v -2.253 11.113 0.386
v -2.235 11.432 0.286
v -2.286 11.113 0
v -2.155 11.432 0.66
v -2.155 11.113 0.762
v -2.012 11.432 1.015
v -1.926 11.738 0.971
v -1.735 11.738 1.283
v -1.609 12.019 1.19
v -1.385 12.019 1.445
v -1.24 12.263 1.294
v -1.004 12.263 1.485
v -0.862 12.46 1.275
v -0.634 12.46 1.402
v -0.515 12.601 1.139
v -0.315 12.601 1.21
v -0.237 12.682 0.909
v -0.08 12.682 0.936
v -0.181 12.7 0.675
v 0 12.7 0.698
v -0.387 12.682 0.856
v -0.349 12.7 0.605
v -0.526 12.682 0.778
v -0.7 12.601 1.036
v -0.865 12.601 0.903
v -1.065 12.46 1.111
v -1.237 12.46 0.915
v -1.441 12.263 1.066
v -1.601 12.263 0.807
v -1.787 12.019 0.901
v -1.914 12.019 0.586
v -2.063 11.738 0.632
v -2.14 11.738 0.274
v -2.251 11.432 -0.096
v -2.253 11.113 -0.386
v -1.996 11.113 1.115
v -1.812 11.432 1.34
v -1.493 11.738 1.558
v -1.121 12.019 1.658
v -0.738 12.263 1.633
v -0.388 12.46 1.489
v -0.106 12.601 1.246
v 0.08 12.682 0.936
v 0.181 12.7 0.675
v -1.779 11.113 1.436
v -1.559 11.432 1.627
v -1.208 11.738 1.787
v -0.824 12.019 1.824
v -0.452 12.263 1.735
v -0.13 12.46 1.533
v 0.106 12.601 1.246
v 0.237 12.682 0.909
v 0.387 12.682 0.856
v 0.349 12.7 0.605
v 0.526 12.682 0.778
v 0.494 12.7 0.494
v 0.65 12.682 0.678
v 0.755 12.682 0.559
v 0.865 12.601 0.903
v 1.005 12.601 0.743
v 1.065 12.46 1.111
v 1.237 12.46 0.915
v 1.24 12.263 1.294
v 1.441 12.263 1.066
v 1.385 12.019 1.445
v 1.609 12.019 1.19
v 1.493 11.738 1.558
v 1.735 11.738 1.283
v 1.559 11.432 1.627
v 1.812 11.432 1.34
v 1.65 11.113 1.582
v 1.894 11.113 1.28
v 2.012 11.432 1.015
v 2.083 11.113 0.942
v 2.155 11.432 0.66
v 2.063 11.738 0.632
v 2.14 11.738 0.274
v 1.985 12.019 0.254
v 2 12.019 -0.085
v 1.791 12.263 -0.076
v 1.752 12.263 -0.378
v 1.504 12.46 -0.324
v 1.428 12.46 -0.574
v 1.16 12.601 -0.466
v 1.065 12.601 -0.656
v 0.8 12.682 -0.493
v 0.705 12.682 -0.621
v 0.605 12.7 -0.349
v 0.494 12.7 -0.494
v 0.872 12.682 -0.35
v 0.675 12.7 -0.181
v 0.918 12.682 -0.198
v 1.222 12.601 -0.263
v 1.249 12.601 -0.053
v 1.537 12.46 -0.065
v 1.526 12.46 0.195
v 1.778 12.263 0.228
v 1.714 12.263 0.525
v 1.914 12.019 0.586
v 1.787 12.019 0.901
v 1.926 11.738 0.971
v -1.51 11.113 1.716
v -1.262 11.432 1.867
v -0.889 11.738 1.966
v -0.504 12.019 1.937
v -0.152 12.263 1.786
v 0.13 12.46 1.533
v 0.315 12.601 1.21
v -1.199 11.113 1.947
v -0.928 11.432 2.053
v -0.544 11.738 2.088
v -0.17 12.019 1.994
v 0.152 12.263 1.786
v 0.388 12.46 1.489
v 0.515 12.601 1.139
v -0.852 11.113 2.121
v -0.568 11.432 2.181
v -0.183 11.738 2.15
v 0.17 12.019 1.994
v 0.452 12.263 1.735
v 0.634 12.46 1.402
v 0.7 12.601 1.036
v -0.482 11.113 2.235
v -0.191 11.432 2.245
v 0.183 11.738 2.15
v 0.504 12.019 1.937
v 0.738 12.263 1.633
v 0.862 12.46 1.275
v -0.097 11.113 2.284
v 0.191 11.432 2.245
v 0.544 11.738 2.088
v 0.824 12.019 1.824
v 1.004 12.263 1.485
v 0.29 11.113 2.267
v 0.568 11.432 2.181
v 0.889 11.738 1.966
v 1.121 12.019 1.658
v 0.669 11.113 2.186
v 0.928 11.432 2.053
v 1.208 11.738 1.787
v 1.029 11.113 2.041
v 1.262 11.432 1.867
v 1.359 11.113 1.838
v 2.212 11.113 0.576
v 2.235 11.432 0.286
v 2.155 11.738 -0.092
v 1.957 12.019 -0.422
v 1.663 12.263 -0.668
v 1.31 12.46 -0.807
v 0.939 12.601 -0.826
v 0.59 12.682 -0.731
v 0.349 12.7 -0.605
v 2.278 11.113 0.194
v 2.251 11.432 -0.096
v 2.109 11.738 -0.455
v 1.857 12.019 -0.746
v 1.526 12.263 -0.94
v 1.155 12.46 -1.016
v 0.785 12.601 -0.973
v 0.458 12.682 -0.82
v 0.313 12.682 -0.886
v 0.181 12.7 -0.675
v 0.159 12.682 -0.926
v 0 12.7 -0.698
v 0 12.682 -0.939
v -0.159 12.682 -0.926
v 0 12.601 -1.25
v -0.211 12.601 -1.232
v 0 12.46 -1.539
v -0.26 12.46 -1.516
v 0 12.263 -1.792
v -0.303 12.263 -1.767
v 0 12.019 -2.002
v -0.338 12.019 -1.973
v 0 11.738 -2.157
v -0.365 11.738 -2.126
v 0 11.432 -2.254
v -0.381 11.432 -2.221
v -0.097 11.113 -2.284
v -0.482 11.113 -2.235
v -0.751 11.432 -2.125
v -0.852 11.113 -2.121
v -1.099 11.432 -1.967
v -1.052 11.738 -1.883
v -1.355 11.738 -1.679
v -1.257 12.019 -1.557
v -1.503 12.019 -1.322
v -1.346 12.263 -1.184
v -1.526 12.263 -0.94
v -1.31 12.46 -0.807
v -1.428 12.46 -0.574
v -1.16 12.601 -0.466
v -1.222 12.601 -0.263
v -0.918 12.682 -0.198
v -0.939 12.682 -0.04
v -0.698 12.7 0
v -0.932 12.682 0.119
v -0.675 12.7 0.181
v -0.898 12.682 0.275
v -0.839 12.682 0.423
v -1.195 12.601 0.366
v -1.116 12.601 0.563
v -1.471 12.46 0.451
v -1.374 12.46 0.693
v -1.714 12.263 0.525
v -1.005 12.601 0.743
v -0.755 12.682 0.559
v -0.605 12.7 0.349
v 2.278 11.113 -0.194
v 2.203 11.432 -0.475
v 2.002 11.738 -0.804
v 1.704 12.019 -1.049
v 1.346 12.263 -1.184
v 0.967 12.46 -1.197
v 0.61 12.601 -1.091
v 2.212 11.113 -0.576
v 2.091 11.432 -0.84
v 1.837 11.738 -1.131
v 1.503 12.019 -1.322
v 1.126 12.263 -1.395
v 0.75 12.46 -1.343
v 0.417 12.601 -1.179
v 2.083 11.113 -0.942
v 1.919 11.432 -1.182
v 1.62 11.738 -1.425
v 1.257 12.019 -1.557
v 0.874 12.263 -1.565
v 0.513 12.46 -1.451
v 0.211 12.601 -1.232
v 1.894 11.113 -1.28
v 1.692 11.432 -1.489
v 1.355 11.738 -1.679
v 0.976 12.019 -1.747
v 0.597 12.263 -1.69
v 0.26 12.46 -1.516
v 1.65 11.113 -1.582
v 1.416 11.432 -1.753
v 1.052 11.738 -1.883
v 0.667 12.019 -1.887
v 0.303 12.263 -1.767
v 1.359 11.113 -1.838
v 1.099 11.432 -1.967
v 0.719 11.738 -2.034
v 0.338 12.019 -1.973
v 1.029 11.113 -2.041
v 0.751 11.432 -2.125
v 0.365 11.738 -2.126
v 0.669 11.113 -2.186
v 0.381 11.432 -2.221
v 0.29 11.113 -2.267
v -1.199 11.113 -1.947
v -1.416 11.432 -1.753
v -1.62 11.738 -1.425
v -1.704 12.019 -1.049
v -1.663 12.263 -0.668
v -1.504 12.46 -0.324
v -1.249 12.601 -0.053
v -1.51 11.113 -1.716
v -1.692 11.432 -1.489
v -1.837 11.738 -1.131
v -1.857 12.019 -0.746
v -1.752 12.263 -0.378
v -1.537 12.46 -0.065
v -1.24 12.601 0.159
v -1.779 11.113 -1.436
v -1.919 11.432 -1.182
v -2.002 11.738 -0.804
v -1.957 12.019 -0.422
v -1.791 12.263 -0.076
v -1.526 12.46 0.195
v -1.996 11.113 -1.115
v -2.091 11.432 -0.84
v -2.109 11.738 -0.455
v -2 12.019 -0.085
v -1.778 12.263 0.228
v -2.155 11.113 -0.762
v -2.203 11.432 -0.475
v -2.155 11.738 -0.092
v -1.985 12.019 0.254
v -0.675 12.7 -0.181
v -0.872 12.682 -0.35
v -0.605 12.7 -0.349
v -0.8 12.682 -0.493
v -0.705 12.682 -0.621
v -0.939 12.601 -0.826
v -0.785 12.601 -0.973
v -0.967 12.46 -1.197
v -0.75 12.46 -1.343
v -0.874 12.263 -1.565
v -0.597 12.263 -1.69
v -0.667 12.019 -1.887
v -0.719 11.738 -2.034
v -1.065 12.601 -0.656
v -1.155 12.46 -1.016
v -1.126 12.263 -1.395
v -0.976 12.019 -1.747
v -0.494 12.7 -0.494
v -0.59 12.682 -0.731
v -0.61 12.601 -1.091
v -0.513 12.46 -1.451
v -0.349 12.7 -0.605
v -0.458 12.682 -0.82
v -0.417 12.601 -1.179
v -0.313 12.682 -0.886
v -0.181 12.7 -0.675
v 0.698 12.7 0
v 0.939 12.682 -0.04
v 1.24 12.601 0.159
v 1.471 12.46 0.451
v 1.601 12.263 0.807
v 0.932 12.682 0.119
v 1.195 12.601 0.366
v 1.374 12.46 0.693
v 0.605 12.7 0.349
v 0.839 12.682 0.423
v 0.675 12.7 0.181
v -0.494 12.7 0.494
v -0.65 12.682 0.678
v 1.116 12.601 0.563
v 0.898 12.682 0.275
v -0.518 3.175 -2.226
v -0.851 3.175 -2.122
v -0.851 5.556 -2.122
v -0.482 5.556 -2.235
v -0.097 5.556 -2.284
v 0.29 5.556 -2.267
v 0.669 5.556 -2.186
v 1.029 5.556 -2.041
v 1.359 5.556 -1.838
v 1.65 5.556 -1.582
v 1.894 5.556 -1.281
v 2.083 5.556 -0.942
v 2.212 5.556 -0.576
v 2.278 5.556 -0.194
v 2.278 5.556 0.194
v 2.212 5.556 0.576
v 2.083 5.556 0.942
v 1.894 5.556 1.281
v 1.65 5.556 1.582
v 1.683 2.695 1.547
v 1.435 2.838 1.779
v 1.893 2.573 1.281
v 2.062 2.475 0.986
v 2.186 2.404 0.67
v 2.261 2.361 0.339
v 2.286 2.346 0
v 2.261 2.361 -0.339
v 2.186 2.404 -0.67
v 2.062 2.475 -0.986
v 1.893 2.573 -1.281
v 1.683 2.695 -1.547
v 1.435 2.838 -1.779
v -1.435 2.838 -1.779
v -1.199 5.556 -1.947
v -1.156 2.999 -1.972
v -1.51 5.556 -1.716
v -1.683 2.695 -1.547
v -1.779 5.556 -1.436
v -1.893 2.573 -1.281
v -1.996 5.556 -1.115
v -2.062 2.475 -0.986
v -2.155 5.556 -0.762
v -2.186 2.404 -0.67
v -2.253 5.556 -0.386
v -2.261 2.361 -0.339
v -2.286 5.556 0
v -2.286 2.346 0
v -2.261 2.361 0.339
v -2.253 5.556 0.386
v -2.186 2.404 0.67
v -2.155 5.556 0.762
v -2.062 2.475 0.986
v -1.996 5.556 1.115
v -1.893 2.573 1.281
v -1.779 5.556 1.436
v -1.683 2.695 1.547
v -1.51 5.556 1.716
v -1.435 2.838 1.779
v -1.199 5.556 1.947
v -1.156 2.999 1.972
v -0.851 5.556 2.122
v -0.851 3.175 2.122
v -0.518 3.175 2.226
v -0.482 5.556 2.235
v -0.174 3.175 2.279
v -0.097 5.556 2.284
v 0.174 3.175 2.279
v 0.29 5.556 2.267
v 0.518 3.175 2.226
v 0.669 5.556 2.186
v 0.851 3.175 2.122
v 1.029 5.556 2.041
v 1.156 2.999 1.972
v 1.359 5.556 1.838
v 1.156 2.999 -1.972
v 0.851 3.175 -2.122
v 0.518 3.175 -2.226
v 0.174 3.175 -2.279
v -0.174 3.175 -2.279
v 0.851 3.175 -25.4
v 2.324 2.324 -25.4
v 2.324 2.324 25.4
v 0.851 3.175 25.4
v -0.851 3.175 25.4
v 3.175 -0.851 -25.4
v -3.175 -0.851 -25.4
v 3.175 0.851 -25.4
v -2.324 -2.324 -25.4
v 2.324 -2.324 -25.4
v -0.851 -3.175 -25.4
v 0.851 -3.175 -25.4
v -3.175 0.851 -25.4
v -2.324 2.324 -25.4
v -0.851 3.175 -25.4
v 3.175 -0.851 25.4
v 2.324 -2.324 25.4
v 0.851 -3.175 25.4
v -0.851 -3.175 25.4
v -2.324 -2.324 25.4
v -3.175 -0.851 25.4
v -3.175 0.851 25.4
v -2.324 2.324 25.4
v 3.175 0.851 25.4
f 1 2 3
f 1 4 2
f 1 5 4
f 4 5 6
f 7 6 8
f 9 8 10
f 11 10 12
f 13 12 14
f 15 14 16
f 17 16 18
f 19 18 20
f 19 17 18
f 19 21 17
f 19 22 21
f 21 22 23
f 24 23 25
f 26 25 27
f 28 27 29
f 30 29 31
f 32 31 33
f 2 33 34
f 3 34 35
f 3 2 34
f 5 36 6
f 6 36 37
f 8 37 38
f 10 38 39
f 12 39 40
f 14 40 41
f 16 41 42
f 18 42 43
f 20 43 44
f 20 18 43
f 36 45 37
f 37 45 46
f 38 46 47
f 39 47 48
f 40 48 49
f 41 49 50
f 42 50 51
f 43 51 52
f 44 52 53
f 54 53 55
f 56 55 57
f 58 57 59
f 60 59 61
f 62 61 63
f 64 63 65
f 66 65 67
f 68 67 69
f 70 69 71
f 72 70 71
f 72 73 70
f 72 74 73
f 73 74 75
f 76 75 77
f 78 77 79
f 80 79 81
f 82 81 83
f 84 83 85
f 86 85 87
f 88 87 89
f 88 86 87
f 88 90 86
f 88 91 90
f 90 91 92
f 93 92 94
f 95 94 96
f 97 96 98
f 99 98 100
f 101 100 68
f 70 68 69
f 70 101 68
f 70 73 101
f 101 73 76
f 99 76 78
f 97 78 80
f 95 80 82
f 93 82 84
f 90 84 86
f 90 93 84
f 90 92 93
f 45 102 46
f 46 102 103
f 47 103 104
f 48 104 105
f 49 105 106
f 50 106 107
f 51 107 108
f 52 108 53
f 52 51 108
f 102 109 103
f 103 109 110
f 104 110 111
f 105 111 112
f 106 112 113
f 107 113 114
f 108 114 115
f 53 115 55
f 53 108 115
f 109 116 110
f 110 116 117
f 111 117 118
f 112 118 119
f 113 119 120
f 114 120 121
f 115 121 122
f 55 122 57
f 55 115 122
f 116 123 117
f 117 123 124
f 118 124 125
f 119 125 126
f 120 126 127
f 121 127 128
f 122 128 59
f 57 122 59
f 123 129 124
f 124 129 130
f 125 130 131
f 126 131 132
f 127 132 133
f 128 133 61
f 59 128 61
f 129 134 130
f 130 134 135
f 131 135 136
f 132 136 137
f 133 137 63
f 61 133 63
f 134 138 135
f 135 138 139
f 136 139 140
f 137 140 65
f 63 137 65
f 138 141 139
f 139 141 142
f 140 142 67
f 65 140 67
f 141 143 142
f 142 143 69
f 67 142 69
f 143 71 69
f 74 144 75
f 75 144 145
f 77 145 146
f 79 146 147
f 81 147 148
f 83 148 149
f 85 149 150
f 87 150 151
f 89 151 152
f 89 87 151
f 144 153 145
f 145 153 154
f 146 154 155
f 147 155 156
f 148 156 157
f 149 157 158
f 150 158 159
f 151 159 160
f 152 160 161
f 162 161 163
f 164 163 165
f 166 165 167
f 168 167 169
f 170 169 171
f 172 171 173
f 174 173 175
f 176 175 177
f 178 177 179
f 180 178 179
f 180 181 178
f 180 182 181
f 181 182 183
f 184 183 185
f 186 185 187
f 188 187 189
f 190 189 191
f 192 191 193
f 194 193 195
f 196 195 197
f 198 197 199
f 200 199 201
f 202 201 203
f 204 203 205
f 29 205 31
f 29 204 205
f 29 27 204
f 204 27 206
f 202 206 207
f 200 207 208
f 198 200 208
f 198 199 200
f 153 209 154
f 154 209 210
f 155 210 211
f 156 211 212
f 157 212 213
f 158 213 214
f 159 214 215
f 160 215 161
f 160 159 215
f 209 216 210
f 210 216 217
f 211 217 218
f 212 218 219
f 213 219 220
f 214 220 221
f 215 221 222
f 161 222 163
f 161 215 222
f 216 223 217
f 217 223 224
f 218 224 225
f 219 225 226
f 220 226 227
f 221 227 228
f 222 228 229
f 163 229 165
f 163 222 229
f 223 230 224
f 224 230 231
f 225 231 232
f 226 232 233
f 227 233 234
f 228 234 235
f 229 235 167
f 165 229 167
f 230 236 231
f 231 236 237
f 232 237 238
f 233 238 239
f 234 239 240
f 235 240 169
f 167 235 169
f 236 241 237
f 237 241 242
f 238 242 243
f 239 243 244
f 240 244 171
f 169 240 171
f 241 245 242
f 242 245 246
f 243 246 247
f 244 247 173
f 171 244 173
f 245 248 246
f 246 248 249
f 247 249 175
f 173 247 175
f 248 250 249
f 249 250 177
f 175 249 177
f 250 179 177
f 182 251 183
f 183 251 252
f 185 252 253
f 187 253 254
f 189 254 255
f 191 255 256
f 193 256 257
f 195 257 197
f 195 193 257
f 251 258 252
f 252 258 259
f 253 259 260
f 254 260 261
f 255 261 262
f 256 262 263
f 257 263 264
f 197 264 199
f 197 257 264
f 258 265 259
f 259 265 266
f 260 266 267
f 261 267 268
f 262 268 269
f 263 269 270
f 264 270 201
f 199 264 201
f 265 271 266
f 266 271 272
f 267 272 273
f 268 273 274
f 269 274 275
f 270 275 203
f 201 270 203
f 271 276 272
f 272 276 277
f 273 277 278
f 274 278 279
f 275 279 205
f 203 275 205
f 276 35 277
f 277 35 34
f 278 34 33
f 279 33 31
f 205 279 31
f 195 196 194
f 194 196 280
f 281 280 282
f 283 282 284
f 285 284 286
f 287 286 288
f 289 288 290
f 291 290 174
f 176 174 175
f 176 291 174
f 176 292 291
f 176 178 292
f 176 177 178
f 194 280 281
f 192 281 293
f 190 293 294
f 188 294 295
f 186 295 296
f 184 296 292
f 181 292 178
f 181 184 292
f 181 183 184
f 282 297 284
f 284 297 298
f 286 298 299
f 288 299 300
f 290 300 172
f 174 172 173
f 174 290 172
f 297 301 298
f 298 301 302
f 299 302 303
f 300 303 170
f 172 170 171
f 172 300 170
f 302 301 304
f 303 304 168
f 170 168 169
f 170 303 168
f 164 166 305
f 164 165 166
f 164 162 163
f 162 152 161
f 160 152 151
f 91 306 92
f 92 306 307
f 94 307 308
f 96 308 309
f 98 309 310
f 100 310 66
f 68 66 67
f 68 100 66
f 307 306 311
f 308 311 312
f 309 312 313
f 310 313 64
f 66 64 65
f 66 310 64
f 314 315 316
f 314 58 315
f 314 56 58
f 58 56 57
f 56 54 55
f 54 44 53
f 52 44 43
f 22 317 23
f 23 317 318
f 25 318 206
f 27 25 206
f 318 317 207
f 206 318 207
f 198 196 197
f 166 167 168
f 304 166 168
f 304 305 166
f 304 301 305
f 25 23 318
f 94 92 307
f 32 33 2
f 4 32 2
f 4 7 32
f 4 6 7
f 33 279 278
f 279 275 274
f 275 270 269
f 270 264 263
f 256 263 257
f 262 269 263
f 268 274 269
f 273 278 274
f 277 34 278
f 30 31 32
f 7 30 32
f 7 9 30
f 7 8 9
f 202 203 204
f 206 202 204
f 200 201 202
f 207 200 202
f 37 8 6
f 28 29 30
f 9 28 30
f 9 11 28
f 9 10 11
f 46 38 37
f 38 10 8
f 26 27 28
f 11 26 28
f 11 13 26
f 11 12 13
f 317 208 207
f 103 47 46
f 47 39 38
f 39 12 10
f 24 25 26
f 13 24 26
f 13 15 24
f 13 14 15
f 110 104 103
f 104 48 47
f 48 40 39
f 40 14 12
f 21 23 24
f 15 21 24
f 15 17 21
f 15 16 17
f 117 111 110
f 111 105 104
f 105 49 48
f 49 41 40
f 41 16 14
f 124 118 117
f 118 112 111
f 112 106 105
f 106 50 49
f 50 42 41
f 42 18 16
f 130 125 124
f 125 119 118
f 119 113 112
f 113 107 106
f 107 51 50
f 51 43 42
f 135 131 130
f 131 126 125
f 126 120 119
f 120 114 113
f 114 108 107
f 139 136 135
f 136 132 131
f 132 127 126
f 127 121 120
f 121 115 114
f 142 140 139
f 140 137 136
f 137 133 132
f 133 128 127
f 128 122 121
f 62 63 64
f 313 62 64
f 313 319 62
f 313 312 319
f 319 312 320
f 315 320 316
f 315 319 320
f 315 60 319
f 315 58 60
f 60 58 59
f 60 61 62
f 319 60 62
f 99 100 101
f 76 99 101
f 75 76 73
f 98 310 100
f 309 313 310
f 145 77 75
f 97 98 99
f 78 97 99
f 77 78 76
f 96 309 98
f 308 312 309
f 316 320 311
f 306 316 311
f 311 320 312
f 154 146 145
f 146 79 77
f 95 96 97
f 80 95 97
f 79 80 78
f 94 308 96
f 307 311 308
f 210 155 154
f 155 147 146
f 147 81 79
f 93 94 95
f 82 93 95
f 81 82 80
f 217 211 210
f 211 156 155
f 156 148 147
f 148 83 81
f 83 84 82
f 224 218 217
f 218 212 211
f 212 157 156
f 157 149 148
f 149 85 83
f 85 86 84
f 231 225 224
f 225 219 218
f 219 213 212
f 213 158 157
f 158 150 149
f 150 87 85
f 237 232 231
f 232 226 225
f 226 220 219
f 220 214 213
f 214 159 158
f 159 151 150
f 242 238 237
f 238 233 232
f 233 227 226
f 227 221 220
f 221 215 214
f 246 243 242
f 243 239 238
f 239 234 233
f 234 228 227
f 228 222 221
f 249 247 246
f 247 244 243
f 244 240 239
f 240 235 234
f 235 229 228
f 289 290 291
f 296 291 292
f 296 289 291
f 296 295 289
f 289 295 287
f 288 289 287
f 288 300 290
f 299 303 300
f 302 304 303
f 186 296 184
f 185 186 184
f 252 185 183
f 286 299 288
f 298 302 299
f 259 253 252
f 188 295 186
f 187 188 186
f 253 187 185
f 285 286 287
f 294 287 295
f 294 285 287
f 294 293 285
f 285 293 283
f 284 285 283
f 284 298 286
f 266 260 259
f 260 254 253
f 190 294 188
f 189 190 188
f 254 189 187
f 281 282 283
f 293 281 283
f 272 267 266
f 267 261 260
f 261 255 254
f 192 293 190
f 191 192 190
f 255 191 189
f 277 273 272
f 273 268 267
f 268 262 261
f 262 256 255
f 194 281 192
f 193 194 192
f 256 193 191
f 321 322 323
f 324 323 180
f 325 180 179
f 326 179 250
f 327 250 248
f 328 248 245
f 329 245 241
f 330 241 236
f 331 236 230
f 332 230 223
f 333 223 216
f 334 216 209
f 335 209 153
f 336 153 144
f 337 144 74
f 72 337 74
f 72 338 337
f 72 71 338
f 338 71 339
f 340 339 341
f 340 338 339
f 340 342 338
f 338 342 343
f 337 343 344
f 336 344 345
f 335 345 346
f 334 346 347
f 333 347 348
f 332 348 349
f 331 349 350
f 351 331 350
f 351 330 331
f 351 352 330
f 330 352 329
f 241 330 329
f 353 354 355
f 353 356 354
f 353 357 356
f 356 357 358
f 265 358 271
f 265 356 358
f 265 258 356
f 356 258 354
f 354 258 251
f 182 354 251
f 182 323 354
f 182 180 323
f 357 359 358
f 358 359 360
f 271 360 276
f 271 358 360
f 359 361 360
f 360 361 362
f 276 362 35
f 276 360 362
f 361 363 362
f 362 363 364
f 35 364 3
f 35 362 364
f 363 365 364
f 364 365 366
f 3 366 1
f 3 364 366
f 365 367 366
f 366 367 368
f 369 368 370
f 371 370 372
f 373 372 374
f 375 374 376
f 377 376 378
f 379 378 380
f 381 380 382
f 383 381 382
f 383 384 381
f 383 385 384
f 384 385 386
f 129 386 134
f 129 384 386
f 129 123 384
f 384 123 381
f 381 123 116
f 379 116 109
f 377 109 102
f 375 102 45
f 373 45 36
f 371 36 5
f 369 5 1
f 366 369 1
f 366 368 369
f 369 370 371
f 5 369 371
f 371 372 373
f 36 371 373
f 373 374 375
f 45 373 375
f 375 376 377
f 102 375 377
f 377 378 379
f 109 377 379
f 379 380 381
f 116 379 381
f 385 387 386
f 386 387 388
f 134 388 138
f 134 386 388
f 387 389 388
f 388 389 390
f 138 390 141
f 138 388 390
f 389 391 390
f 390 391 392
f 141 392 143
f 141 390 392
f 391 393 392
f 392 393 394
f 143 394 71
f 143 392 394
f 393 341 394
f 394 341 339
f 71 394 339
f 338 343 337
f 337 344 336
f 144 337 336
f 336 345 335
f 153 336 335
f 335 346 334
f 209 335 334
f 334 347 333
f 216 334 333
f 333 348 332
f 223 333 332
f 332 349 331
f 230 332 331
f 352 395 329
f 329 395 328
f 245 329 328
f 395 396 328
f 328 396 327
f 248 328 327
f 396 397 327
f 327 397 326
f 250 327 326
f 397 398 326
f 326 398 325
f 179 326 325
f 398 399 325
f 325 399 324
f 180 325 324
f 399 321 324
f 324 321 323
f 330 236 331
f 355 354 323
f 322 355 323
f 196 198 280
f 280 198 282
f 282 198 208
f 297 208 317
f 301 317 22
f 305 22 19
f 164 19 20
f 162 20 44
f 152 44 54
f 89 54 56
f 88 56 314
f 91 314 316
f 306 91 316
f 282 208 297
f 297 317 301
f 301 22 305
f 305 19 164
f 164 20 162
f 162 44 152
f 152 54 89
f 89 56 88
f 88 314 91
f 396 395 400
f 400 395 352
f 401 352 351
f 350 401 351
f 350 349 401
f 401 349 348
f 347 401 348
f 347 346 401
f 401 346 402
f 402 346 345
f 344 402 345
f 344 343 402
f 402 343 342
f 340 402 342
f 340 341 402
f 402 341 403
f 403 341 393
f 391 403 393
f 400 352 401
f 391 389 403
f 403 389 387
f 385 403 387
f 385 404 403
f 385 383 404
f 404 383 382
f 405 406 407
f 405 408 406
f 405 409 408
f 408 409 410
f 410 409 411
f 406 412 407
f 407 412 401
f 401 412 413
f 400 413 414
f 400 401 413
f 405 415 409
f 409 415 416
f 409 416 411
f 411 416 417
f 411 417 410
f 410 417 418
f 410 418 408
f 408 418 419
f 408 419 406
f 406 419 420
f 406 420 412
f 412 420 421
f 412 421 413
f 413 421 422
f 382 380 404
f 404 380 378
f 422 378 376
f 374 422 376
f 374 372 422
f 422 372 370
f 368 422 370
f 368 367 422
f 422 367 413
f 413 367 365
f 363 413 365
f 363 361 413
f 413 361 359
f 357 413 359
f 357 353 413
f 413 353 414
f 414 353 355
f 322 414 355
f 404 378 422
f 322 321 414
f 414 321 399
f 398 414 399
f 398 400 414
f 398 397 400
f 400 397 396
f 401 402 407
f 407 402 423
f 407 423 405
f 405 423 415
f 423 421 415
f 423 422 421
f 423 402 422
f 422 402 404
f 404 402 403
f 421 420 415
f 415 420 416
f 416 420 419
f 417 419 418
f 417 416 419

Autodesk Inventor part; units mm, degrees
ref_plane "YZ Plane" through (0, 0, 0) normal (1, 0, 0) x (0, 1, 0)
ref_plane "XZ Plane" through (0, 0, 0) normal (0, 1, 0) x (-1, 0, 0)
ref_plane "XY Plane" through (0, 0, 0) normal (0, 0, 1) x (1, 0, 0)
sketch "Sketch1" plane through (0, 0, 0) normal (0, 0, 1) x (1, 0, 0)
  line L0 (3.175, 0.8507) -> (3.175, -0.8507)
  line L1 (3.175, -0.8507) -> (2.3243, -2.3243)
  line L2 (2.3243, -2.3243) -> (0.8507, -3.175)
  line L3 (0.8507, -3.175) -> (-0.8507, -3.175)
  line L4 (-0.8507, -3.175) -> (-2.3243, -2.3243)
  line L5 (-2.3243, -2.3243) -> (-3.175, -0.8507)
  line L6 (-3.175, -0.8507) -> (-3.175, 0.8507)
  line L7 (-3.175, 0.8507) -> (-2.3243, 2.3243)
  line L8 (-2.3243, 2.3243) -> (-0.8507, 3.175)
  line L9 (-0.8507, 3.175) -> (0.8507, 3.175)
  line L10 (0.8507, 3.175) -> (2.3243, 2.3243)
  line L11 (2.3243, 2.3243) -> (3.175, 0.8507)
  line L12 (0, 0) -> (0, 3.175) construction
  dimension "d9" = 6.35
extrude "Extrusion1" add sketch "Sketch1" along normal blind 25.4 and the other way blind 25.4
sketch "Sketch2" plane through (0, 0, 0) normal (0, 1, 0) x (-1, 0, 0)
  circle A0 centre (0, 0) radius 2.286
  dimension "diamCamSlot" = 4.572
extrude "Extrusion2" add sketch "Sketch2" along normal blind 12.7
fillet "Fillet1" radius 1.5875 1 edges at (2.286, 12.7, 0)
equation "\"d9\" = camDiam"
equation "\"camDiam\" = 6.35"
properties part number "vexCamPost10"
